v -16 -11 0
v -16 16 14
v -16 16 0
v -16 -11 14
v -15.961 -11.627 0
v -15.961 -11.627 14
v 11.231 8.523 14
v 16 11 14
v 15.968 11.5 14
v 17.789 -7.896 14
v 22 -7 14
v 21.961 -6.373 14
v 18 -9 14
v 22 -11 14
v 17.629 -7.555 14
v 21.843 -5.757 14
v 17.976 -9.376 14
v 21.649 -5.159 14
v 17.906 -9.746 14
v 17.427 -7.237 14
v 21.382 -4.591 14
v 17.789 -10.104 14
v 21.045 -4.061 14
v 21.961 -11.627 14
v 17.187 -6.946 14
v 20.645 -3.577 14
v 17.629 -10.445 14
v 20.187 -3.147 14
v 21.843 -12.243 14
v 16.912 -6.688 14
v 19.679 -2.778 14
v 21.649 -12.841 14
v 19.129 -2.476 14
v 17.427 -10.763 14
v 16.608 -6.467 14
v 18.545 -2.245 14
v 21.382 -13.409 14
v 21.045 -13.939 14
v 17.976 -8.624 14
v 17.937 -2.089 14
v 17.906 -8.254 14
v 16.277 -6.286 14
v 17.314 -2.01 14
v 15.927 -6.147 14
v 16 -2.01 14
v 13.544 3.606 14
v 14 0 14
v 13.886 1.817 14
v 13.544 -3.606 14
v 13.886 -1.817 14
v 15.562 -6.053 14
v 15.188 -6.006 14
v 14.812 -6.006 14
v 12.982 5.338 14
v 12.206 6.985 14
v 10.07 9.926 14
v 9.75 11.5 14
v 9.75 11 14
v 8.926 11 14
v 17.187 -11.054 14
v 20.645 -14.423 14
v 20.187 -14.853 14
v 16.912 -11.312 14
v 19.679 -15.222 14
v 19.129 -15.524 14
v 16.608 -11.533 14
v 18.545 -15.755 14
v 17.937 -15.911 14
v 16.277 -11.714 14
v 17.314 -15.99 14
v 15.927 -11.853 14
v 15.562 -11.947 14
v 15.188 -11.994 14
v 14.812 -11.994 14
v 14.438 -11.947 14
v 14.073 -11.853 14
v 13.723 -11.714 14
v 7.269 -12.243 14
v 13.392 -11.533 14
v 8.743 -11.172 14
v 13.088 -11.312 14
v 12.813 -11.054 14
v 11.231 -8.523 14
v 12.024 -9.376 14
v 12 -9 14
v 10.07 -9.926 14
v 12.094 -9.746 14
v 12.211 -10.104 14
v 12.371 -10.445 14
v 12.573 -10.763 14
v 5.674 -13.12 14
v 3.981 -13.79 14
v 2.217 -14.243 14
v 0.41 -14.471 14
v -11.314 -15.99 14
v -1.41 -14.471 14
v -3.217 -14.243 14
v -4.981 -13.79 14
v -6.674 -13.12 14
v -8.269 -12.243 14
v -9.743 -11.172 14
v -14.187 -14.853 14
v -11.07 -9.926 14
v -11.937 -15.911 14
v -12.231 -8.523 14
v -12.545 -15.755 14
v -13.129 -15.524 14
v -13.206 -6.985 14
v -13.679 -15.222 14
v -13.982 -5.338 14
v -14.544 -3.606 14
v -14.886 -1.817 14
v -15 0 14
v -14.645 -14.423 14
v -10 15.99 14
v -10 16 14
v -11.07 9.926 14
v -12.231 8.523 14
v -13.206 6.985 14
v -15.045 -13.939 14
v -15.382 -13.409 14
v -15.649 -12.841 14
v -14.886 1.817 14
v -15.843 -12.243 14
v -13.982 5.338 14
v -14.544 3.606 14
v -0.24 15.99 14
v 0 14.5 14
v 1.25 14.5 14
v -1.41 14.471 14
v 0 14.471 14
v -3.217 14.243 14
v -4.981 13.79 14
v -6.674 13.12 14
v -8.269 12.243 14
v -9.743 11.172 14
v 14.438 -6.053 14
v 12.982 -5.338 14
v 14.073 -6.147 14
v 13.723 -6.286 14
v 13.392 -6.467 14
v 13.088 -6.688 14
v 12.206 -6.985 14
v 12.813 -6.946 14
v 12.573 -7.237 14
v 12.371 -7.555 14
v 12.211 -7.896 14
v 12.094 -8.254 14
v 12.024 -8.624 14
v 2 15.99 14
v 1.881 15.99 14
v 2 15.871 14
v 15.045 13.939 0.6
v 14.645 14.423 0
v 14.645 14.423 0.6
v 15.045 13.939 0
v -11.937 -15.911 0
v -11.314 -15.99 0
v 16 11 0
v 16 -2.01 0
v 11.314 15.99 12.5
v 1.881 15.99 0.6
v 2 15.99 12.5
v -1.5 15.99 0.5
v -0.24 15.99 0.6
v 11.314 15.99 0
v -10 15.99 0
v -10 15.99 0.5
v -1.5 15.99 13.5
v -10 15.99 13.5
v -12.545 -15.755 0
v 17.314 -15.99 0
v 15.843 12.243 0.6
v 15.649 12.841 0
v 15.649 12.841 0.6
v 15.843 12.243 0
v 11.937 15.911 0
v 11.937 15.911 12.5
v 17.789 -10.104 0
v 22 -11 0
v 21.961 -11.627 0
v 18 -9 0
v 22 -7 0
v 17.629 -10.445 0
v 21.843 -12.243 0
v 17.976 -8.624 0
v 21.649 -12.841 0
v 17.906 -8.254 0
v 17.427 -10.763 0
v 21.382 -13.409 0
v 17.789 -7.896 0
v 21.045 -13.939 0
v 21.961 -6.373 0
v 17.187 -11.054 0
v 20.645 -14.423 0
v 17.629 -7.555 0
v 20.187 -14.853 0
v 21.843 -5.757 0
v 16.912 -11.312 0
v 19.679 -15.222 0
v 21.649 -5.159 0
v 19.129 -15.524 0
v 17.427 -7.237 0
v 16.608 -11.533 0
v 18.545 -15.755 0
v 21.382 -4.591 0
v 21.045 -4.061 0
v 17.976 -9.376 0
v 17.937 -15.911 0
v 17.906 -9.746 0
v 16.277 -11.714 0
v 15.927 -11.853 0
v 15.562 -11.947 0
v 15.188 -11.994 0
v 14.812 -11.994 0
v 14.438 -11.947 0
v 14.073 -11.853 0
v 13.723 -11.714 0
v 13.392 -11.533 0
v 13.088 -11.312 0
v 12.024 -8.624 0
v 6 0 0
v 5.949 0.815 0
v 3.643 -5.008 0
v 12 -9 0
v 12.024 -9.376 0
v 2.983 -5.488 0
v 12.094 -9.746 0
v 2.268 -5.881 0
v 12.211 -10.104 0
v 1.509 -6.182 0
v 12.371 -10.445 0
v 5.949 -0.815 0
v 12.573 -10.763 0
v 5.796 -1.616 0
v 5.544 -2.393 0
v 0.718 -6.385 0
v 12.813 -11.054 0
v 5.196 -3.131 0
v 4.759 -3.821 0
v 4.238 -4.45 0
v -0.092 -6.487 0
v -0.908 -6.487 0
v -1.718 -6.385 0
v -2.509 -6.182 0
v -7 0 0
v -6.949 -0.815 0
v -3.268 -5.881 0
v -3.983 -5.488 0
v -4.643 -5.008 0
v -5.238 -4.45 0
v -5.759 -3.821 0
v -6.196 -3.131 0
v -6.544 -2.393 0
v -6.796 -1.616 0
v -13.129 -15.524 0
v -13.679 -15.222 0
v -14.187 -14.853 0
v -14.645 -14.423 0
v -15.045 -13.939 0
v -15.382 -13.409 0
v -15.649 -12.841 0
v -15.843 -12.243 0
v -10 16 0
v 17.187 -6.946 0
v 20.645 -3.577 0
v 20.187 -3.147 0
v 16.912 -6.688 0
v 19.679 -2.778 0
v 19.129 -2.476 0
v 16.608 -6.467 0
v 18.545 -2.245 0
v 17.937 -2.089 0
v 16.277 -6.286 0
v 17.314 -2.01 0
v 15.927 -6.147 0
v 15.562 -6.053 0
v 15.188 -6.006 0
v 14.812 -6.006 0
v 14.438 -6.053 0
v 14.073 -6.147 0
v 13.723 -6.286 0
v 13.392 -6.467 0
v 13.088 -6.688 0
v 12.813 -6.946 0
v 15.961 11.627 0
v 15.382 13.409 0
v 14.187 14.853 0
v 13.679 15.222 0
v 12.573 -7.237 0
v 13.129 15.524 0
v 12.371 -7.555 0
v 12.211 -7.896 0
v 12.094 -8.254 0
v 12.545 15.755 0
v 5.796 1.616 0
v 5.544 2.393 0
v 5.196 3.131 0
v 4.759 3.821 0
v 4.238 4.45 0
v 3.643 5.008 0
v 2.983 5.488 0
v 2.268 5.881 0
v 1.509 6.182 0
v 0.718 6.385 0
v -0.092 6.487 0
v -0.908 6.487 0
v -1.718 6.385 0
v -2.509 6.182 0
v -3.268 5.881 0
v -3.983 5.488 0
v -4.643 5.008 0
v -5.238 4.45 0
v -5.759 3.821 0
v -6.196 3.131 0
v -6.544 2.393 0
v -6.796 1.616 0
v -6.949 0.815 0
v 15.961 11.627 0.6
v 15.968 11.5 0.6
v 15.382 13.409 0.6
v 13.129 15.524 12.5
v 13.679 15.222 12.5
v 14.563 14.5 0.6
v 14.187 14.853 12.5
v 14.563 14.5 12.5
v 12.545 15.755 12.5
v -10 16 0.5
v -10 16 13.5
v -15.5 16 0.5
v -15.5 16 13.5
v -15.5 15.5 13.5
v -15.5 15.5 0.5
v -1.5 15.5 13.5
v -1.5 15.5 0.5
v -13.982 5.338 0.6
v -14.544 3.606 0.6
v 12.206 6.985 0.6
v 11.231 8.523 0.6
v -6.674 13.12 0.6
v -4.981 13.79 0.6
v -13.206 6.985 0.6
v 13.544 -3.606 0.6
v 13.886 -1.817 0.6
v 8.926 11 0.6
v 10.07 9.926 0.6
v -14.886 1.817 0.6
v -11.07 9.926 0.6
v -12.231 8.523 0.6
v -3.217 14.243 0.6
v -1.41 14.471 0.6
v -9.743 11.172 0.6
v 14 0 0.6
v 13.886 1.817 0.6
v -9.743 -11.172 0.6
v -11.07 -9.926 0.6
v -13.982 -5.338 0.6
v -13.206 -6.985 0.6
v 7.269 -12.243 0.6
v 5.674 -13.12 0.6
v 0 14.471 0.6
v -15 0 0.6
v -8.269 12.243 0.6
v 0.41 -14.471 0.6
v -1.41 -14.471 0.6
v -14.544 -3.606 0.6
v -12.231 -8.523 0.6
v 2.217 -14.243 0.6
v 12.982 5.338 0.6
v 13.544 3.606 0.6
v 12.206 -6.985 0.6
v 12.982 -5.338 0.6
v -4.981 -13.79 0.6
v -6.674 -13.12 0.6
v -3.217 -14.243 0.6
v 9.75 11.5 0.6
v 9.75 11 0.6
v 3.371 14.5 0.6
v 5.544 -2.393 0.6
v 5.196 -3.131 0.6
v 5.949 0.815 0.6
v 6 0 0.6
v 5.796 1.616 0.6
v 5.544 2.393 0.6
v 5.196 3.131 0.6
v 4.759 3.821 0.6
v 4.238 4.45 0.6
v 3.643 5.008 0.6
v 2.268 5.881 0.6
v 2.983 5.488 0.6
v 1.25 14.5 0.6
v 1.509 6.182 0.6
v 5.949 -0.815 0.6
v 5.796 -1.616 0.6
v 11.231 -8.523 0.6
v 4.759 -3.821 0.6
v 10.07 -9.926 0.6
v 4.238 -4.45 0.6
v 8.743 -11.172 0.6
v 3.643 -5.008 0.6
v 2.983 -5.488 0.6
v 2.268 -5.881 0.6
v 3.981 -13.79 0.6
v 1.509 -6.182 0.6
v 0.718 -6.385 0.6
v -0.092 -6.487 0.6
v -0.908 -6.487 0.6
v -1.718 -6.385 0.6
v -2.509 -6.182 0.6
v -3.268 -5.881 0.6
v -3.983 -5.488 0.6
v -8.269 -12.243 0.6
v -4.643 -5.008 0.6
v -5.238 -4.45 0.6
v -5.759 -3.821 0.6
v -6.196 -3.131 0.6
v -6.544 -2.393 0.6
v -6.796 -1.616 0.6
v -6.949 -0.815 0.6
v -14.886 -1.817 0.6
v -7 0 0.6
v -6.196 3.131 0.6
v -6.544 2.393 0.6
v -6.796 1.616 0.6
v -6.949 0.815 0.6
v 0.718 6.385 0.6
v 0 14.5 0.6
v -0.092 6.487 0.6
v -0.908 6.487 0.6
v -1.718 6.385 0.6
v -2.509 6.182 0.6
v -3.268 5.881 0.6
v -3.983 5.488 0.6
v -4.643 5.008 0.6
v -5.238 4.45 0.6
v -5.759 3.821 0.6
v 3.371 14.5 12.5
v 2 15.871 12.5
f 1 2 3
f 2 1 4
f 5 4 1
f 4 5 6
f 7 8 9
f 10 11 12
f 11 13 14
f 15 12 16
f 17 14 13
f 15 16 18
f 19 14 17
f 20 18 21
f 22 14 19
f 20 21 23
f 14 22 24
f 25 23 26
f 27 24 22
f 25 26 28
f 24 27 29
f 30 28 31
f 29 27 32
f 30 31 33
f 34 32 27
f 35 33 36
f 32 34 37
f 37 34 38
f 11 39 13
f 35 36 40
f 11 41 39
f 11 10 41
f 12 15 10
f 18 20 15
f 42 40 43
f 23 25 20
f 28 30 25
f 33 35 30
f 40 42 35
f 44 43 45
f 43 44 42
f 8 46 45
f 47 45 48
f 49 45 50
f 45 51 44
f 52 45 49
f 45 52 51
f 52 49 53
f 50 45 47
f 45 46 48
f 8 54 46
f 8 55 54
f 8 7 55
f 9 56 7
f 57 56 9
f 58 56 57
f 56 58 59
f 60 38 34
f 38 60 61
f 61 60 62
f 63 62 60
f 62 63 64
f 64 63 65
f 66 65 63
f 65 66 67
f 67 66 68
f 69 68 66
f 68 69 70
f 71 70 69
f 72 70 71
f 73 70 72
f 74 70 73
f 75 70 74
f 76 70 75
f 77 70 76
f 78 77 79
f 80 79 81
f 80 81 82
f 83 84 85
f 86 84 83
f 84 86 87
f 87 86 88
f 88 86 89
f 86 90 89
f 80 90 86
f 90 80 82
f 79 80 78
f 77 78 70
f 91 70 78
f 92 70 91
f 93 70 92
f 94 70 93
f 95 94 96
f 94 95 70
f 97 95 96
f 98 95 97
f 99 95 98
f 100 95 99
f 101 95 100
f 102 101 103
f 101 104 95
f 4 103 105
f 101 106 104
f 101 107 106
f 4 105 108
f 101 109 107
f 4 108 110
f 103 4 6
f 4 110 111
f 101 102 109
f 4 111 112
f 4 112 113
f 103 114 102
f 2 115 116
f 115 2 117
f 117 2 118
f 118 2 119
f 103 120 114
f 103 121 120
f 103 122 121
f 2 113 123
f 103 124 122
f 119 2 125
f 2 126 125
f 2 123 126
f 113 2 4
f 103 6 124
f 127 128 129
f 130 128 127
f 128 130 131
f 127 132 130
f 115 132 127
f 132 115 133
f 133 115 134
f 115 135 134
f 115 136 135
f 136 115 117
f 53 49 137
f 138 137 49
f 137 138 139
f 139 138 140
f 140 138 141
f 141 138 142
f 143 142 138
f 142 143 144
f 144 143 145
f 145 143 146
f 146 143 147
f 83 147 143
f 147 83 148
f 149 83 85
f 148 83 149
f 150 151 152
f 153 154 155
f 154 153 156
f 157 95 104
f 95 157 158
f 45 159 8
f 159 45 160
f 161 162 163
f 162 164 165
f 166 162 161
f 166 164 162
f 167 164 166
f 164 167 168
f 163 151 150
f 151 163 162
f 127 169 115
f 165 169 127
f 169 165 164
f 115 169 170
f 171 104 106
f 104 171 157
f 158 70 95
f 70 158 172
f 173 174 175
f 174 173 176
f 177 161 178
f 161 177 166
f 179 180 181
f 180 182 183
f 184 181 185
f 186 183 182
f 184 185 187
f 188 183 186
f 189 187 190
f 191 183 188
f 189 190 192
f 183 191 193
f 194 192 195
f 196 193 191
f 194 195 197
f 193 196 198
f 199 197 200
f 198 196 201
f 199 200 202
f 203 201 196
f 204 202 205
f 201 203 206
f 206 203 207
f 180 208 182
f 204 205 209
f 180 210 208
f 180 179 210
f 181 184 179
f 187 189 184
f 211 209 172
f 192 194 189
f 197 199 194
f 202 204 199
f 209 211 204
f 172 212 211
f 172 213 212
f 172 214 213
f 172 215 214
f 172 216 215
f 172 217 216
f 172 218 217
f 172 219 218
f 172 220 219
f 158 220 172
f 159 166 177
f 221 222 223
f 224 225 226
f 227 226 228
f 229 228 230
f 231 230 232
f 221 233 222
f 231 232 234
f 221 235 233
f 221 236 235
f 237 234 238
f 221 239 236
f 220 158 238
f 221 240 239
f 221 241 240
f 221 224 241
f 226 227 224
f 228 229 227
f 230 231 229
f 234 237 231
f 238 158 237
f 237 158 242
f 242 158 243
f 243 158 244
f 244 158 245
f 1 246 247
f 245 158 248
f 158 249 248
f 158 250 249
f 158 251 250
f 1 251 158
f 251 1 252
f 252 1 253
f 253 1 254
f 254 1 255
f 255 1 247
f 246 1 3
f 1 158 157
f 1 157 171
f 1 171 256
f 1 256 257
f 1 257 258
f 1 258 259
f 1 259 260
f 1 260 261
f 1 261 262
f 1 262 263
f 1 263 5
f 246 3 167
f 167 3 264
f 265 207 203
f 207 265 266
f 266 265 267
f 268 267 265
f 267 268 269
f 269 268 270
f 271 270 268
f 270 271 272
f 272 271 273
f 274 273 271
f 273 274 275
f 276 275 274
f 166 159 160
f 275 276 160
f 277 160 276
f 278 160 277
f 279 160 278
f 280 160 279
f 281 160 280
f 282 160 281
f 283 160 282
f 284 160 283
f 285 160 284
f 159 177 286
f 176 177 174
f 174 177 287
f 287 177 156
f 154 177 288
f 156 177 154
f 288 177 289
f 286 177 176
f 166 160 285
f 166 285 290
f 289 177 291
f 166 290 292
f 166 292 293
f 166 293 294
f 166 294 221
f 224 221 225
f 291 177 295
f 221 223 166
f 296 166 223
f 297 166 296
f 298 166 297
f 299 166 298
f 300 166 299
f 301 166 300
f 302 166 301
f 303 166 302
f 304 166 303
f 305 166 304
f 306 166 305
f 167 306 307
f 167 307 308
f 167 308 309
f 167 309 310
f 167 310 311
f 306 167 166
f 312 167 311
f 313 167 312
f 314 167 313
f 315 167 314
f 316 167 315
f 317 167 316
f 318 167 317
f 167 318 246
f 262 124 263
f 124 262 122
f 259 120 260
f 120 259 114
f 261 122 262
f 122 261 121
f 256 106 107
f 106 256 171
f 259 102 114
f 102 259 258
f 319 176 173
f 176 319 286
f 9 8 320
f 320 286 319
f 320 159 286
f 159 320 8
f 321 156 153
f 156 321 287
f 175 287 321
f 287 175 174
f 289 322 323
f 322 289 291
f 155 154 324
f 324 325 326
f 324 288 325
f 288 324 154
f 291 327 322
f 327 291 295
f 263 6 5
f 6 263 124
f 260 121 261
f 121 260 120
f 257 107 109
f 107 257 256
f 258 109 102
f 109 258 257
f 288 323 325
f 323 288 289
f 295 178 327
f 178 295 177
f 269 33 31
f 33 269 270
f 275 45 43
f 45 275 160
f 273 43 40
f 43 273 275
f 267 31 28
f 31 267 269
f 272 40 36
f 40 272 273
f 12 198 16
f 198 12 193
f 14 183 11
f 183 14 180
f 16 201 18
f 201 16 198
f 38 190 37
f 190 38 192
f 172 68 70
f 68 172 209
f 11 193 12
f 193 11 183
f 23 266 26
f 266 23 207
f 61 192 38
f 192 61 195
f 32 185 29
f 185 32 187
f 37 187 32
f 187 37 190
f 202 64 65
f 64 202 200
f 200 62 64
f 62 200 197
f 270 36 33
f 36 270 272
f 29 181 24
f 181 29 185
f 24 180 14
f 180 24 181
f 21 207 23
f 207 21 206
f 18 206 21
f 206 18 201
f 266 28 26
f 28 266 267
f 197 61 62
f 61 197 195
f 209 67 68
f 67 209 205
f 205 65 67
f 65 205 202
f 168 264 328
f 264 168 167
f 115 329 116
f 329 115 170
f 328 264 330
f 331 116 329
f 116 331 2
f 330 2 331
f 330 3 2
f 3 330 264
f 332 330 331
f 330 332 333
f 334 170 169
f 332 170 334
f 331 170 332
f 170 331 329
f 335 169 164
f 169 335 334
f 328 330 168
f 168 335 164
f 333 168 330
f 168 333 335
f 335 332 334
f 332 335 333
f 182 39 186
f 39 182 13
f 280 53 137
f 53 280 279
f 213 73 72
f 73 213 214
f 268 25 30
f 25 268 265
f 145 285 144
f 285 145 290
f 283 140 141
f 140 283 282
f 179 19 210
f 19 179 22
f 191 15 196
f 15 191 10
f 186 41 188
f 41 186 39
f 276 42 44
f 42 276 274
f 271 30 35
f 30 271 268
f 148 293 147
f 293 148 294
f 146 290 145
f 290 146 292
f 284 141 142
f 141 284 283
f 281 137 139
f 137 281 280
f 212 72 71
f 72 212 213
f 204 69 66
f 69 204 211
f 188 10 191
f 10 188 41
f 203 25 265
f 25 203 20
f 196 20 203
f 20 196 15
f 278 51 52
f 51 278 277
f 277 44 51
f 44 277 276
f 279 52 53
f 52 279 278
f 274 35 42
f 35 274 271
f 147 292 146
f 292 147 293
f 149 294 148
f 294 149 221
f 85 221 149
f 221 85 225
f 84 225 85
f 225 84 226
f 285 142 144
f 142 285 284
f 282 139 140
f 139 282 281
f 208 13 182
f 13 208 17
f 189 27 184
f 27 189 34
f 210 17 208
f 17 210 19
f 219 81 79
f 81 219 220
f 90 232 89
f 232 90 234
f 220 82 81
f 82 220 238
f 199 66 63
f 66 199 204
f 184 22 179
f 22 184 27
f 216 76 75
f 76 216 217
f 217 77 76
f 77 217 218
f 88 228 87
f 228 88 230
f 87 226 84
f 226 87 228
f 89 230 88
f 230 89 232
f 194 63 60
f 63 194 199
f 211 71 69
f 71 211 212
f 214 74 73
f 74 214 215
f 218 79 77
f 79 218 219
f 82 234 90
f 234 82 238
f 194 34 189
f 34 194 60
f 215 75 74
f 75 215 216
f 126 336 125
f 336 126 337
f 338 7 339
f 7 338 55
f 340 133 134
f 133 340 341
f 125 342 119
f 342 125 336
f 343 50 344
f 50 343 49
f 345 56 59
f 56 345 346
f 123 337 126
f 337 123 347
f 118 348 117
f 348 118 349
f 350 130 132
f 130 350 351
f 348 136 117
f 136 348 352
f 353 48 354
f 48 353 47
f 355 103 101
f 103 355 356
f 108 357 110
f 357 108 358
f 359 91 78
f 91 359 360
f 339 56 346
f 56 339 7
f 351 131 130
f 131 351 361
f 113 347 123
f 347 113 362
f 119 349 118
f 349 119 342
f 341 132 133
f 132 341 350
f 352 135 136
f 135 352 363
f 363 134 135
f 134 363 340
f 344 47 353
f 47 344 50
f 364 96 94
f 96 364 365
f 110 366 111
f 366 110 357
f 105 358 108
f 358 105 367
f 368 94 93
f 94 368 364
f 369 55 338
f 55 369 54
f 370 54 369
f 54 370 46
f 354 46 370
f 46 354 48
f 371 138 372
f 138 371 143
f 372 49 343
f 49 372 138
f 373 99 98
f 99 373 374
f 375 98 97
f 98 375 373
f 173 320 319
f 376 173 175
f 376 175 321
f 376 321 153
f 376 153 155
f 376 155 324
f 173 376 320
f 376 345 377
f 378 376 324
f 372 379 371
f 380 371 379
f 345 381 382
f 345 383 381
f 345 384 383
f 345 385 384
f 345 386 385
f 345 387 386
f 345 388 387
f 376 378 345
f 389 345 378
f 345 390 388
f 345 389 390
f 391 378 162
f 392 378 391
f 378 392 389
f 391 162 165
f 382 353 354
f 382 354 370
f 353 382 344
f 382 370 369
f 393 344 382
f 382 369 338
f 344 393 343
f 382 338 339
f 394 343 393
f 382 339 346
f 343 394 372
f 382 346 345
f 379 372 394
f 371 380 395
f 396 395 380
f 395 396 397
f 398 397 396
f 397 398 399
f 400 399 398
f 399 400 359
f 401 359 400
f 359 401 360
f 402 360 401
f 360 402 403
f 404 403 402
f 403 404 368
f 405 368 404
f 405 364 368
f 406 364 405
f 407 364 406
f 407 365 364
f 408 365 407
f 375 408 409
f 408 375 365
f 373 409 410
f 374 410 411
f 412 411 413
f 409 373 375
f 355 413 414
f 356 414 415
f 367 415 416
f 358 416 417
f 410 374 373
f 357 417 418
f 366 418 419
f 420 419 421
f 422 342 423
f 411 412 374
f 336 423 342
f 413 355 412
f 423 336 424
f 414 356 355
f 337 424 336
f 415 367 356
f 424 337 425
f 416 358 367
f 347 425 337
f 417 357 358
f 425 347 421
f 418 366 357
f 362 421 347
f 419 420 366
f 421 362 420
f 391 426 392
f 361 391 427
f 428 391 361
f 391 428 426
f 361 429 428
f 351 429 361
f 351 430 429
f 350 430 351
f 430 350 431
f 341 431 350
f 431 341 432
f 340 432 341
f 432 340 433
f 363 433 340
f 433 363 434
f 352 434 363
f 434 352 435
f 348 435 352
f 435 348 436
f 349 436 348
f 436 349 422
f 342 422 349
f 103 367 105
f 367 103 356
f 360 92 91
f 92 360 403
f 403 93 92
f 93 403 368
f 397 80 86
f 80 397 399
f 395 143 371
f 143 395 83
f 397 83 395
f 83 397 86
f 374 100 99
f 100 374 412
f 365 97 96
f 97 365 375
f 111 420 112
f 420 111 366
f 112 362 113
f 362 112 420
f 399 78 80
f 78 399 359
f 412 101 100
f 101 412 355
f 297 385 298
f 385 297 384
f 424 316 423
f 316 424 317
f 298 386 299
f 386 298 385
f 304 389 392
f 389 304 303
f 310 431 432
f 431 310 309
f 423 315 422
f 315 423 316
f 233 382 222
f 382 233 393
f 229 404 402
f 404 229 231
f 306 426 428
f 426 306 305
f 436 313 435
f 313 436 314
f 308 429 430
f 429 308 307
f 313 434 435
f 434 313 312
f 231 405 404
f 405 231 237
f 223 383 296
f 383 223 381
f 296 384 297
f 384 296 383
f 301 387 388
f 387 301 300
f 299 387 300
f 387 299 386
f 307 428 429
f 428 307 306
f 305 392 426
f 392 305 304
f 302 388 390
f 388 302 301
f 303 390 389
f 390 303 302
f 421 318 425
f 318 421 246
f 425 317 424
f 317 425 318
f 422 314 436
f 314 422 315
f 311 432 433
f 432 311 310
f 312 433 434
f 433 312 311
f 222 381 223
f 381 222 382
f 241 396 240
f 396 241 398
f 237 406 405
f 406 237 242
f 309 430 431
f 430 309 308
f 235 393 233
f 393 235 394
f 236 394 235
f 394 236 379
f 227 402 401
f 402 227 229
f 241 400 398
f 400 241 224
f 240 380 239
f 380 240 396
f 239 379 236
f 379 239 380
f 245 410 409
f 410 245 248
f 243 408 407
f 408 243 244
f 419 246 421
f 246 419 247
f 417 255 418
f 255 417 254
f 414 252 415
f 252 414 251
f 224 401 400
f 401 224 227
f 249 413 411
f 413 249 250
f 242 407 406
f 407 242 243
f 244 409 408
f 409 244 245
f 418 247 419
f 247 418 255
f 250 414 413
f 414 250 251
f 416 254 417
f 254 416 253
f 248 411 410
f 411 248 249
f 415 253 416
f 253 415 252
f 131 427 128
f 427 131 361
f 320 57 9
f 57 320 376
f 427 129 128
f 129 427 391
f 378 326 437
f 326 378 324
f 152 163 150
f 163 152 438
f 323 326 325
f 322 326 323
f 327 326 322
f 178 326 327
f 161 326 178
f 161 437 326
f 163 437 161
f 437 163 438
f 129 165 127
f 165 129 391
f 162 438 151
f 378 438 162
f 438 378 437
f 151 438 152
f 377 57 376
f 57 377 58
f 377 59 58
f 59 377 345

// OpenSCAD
$fn = 50;


difference() {
	union() {
		hull() {
			translate(v = [-11.0000000000, 11.0000000000, 0]) {
				cylinder(h = 14, r = 5);
			}
			translate(v = [11.0000000000, 11.0000000000, 0]) {
				cylinder(h = 14, r = 5);
			}
			translate(v = [-11.0000000000, -11.0000000000, 0]) {
				cylinder(h = 14, r = 5);
			}
			translate(v = [11.0000000000, -11.0000000000, 0]) {
				cylinder(h = 14, r = 5);
			}
		}
		translate(v = [7.5000000000, -9.0000000000, 0]) {
			hull() {
				translate(v = [-9.5000000000, 2.0000000000, 0]) {
					cylinder(h = 14, r = 5);
				}
				translate(v = [9.5000000000, 2.0000000000, 0]) {
					cylinder(h = 14, r = 5);
				}
				translate(v = [-9.5000000000, -2.0000000000, 0]) {
					cylinder(h = 14, r = 5);
				}
				translate(v = [9.5000000000, -2.0000000000, 0]) {
					cylinder(h = 14, r = 5);
				}
			}
		}
		translate(v = [-16.0000000000, 10.0000000000, 0]) {
			cube(size = [6, 6, 14]);
		}
	}
	union() {
		translate(v = [-15.5000000000, 15.5000000000, 0.5000000000]) {
			cube(size = [14, 0.5000000000, 13.0000000000]);
		}
		translate(v = [15.0000000000, -9.0000000000, -50.0000000000]) {
			cylinder(h = 100, r = 3.0000000000);
		}
		translate(v = [-0.5000000000, 0.0000000000, 0.6000000000]) {
			cylinder(h = 16.4000000000, r = 14.5000000000);
		}
		translate(v = [-0.5000000000, 0.0000000000, -7.0000000000]) {
			cylinder(h = 14, r = 6.5000000000);
		}
		translate(v = [0.0000000000, 11.5000000000, 0.6000000000]) {
			cube(size = [16.0000000000, 3, 16.4000000000]);
		}
		translate(v = [2.0000000000, 11.5000000000, 12.5000000000]) {
			cube(size = [14.0000000000, 6, 1.5000000000]);
		}
		translate(v = [-3.0000000000, 18.7500000000, 0.6000000000]) {
			rotate(a = [0, 0, -45]) {
				cube(size = [10, 1.5000000000, 16.4000000000]);
			}
		}
		translate(v = [2.2500000000, 11.0000000000, 0.6000000000]) {
			cube(size = [7.5000000000, 2, 13.4000000000]);
		}
	}
}
